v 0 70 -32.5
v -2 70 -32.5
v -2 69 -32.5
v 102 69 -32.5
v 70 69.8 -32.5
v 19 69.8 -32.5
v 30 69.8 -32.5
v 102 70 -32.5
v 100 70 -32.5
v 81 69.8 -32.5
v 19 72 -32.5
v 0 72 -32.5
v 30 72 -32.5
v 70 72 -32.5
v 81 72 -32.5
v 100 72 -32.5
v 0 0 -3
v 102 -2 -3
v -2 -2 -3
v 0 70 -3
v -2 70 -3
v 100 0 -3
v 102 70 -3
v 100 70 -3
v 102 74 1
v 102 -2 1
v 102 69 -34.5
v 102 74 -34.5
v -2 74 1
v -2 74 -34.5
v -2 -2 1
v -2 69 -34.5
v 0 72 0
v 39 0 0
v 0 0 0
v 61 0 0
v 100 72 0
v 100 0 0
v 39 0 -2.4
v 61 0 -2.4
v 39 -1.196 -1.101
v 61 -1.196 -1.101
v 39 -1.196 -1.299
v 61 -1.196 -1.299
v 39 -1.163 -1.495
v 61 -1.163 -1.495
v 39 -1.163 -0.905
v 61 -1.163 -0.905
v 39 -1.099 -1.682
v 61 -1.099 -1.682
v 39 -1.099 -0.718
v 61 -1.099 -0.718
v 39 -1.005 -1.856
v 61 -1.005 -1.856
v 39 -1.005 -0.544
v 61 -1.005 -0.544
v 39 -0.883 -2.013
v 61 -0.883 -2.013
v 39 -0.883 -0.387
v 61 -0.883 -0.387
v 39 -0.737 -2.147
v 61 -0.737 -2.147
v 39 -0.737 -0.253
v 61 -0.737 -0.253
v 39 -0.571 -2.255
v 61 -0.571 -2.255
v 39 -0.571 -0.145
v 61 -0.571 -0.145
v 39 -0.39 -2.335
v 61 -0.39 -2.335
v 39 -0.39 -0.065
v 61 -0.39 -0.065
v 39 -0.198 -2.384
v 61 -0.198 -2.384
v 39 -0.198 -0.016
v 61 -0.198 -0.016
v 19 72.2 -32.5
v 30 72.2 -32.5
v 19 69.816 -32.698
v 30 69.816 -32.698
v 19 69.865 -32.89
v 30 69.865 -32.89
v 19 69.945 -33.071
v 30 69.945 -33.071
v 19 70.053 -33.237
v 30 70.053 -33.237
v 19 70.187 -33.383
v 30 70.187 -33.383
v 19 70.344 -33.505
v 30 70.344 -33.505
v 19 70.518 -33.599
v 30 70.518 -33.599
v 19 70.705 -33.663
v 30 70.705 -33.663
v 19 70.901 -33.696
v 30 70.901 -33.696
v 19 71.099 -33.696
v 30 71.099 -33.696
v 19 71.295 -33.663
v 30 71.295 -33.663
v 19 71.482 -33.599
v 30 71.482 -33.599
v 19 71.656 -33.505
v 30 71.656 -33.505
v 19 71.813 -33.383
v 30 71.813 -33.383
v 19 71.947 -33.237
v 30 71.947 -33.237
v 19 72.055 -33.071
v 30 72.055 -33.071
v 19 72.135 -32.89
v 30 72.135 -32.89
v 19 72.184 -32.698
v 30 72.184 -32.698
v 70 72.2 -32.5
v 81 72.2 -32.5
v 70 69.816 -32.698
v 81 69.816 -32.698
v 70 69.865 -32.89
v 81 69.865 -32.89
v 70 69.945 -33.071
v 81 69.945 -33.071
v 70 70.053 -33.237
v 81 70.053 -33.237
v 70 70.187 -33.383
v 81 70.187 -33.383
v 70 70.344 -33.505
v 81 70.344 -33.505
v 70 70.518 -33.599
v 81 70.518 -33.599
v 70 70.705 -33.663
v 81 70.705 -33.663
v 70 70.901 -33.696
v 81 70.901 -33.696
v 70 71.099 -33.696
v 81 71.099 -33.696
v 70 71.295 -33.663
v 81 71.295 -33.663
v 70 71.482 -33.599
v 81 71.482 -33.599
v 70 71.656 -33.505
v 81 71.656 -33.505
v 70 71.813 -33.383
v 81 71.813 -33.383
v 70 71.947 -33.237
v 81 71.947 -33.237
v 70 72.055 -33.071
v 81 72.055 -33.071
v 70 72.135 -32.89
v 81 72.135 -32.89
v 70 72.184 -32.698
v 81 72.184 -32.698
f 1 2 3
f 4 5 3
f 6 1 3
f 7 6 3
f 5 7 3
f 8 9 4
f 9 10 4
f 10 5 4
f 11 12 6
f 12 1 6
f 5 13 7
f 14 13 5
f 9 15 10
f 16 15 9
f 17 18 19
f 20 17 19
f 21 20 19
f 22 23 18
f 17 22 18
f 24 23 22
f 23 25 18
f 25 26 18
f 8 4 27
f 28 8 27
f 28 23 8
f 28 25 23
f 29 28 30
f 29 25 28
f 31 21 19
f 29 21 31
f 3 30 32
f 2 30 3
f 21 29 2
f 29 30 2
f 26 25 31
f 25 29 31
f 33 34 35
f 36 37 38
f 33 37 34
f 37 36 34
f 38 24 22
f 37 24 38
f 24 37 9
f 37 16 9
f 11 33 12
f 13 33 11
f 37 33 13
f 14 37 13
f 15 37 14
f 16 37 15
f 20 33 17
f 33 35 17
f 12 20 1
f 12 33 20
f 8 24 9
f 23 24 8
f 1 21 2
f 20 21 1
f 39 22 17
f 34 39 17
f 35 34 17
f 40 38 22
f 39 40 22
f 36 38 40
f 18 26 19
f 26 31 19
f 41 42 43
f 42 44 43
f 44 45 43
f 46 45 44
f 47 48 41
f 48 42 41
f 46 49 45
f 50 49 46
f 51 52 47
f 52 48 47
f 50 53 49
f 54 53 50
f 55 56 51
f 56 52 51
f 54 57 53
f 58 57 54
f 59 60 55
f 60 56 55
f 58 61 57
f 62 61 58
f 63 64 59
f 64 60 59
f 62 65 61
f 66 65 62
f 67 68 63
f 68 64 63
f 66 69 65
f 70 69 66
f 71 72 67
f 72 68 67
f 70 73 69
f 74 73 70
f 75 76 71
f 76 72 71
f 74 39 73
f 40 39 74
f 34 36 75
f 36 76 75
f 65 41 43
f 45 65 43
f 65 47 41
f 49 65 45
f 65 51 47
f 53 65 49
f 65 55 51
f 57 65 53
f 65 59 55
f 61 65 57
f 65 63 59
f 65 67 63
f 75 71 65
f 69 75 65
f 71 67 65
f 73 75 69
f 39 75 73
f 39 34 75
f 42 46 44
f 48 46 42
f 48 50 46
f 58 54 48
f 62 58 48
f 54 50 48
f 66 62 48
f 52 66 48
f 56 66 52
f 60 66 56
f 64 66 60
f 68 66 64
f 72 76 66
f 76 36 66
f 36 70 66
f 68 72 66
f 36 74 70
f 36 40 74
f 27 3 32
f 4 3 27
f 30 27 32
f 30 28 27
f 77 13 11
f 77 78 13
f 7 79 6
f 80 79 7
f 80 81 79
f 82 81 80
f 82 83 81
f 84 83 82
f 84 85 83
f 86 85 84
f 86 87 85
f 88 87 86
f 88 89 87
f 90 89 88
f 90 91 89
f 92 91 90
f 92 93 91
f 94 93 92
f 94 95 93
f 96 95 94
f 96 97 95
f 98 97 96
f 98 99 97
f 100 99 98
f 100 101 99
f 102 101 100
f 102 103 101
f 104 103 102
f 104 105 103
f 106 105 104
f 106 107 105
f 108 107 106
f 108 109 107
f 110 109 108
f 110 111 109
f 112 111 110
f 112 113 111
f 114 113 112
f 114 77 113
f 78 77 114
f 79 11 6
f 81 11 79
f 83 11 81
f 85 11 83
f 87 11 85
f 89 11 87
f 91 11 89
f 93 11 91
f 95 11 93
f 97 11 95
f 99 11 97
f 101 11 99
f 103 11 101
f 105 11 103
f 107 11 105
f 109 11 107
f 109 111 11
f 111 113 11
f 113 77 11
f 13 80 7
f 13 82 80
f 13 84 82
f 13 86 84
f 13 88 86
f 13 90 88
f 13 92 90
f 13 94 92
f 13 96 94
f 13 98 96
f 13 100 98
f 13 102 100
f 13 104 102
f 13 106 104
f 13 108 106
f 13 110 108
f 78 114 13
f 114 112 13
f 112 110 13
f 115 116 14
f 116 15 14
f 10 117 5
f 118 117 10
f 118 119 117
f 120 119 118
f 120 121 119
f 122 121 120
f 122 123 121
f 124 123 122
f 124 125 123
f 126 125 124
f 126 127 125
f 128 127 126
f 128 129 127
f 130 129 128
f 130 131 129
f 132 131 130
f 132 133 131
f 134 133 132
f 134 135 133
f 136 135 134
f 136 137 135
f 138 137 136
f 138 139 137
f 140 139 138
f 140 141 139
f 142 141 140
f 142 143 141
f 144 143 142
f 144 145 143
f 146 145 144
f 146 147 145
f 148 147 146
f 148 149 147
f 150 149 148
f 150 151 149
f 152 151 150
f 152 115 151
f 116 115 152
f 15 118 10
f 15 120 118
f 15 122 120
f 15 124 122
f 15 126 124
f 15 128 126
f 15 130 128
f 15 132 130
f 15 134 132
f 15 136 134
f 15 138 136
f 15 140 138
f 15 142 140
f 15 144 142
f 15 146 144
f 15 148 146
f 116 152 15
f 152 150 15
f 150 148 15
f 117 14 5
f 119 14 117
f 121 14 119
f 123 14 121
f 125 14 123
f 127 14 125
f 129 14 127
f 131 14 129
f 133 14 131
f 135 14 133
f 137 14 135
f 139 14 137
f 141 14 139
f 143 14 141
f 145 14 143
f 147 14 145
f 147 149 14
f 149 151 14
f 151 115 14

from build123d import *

# Parameters (mm, degrees)
SKETCH1_W               = 104
SKETCH1_H               = 74
BOSS_EXTRUDE1_DEPTH     = 1
BOSS_EXTRUDE2_DEPTH     = 3
BOSS_EXTRUDE3_DEPTH     = 29.5
SKETCH3_W               = 104
SKETCH3_H               = 4
BOSS_EXTRUDE4_DEPTH     = 2
CUT_EXTRUDE1_DEPTH      = 11
CUT_EXTRUDE1_DEPTH_BACK = 11
CUT_EXTRUDE1_START      = -52
SKETCH5_W               = 104
SKETCH5_H               = 5
BOSS_EXTRUDE6_DEPTH     = 2
CUT_EXTRUDE2_START      = -32
CUT_EXTRUDE2_DEPTH      = 11
CUT_EXTRUDE3_START      = -83
CUT_EXTRUDE3_DEPTH      = 11


with BuildPart() as part:
    # Sketch1 → Boss-Extrude1 (new body)
    with BuildSketch(Plane.XY):
        with Locations((50, 37)):
            Rectangle(SKETCH1_W, SKETCH1_H)
    extrude(amount=BOSS_EXTRUDE1_DEPTH)

    # Sketch1<3> → Boss-Extrude2 (add)
    with BuildSketch(Plane.XY):
        Polygon((-2, 74), (-2, 0), (0, 0), (0, 72), (100, 72), (100, 0), (102, 0), (102, 74), align=None)
    extrude(amount=-BOSS_EXTRUDE2_DEPTH)

    # Sketch2 → Boss-Extrude3 (add)
    with BuildSketch(Plane(origin=(0, 0, -3), x_dir=(-1, 0, 0), z_dir=(0, 0, -1))):
        Polygon((-102, 74), (2, 74), (2, 70), (0, 70), (0, 72), (-100, 72), (-100, 70), (-102, 70), align=None)
    extrude(amount=BOSS_EXTRUDE3_DEPTH)

    # Sketch3 → Boss-Extrude4 (add)
    with BuildSketch(Plane.XZ):
        with Locations((50, -1)):
            Rectangle(SKETCH3_W, SKETCH3_H)
    extrude(amount=BOSS_EXTRUDE4_DEPTH)

    # Sketch4 → Cut-Extrude1 (cut, two sides: drawn at the far end of the back side and taken through both)
    with BuildSketch(Plane.ZY.offset(2).offset(CUT_EXTRUDE1_START - CUT_EXTRUDE1_DEPTH_BACK)):
        with BuildLine():
            Line((0, 0), (-2.4, 0))
            ThreePointArc((-2.4, 0), (-1.2, -1.2), (0, 0))
        make_face()
    extrude(amount=CUT_EXTRUDE1_DEPTH + CUT_EXTRUDE1_DEPTH_BACK, mode=Mode.SUBTRACT)

    # Sketch5 → Boss-Extrude6 (add)
    with BuildSketch(Plane(origin=(0, 0, -32.5), x_dir=(-1, 0, 0), z_dir=(0, 0, -1))):
        with Locations((-50, 71.5)):
            Rectangle(SKETCH5_W, SKETCH5_H)
    extrude(amount=BOSS_EXTRUDE6_DEPTH)

    # Sketch6 → Cut-Extrude2 (cut)
    with BuildSketch(Plane.ZY.offset(2).offset(CUT_EXTRUDE2_START)):
        with BuildLine():
            ThreePointArc((-32.5, 72.2), (-33.7, 71), (-32.5, 69.8))
            Line((-32.5, 69.8), (-32.5, 72.2))
        make_face()
    extrude(amount=CUT_EXTRUDE2_DEPTH, mode=Mode.SUBTRACT)

    # Sketch6<3> → Cut-Extrude3 (cut)
    with BuildSketch(Plane.ZY.offset(2).offset(CUT_EXTRUDE3_START)):
        with BuildLine():
            ThreePointArc((-32.5, 72.2), (-33.7, 71), (-32.5, 69.8))
            Line((-32.5, 69.8), (-32.5, 72.2))
        make_face()
    extrude(amount=CUT_EXTRUDE3_DEPTH, mode=Mode.SUBTRACT)


solid = part.part
